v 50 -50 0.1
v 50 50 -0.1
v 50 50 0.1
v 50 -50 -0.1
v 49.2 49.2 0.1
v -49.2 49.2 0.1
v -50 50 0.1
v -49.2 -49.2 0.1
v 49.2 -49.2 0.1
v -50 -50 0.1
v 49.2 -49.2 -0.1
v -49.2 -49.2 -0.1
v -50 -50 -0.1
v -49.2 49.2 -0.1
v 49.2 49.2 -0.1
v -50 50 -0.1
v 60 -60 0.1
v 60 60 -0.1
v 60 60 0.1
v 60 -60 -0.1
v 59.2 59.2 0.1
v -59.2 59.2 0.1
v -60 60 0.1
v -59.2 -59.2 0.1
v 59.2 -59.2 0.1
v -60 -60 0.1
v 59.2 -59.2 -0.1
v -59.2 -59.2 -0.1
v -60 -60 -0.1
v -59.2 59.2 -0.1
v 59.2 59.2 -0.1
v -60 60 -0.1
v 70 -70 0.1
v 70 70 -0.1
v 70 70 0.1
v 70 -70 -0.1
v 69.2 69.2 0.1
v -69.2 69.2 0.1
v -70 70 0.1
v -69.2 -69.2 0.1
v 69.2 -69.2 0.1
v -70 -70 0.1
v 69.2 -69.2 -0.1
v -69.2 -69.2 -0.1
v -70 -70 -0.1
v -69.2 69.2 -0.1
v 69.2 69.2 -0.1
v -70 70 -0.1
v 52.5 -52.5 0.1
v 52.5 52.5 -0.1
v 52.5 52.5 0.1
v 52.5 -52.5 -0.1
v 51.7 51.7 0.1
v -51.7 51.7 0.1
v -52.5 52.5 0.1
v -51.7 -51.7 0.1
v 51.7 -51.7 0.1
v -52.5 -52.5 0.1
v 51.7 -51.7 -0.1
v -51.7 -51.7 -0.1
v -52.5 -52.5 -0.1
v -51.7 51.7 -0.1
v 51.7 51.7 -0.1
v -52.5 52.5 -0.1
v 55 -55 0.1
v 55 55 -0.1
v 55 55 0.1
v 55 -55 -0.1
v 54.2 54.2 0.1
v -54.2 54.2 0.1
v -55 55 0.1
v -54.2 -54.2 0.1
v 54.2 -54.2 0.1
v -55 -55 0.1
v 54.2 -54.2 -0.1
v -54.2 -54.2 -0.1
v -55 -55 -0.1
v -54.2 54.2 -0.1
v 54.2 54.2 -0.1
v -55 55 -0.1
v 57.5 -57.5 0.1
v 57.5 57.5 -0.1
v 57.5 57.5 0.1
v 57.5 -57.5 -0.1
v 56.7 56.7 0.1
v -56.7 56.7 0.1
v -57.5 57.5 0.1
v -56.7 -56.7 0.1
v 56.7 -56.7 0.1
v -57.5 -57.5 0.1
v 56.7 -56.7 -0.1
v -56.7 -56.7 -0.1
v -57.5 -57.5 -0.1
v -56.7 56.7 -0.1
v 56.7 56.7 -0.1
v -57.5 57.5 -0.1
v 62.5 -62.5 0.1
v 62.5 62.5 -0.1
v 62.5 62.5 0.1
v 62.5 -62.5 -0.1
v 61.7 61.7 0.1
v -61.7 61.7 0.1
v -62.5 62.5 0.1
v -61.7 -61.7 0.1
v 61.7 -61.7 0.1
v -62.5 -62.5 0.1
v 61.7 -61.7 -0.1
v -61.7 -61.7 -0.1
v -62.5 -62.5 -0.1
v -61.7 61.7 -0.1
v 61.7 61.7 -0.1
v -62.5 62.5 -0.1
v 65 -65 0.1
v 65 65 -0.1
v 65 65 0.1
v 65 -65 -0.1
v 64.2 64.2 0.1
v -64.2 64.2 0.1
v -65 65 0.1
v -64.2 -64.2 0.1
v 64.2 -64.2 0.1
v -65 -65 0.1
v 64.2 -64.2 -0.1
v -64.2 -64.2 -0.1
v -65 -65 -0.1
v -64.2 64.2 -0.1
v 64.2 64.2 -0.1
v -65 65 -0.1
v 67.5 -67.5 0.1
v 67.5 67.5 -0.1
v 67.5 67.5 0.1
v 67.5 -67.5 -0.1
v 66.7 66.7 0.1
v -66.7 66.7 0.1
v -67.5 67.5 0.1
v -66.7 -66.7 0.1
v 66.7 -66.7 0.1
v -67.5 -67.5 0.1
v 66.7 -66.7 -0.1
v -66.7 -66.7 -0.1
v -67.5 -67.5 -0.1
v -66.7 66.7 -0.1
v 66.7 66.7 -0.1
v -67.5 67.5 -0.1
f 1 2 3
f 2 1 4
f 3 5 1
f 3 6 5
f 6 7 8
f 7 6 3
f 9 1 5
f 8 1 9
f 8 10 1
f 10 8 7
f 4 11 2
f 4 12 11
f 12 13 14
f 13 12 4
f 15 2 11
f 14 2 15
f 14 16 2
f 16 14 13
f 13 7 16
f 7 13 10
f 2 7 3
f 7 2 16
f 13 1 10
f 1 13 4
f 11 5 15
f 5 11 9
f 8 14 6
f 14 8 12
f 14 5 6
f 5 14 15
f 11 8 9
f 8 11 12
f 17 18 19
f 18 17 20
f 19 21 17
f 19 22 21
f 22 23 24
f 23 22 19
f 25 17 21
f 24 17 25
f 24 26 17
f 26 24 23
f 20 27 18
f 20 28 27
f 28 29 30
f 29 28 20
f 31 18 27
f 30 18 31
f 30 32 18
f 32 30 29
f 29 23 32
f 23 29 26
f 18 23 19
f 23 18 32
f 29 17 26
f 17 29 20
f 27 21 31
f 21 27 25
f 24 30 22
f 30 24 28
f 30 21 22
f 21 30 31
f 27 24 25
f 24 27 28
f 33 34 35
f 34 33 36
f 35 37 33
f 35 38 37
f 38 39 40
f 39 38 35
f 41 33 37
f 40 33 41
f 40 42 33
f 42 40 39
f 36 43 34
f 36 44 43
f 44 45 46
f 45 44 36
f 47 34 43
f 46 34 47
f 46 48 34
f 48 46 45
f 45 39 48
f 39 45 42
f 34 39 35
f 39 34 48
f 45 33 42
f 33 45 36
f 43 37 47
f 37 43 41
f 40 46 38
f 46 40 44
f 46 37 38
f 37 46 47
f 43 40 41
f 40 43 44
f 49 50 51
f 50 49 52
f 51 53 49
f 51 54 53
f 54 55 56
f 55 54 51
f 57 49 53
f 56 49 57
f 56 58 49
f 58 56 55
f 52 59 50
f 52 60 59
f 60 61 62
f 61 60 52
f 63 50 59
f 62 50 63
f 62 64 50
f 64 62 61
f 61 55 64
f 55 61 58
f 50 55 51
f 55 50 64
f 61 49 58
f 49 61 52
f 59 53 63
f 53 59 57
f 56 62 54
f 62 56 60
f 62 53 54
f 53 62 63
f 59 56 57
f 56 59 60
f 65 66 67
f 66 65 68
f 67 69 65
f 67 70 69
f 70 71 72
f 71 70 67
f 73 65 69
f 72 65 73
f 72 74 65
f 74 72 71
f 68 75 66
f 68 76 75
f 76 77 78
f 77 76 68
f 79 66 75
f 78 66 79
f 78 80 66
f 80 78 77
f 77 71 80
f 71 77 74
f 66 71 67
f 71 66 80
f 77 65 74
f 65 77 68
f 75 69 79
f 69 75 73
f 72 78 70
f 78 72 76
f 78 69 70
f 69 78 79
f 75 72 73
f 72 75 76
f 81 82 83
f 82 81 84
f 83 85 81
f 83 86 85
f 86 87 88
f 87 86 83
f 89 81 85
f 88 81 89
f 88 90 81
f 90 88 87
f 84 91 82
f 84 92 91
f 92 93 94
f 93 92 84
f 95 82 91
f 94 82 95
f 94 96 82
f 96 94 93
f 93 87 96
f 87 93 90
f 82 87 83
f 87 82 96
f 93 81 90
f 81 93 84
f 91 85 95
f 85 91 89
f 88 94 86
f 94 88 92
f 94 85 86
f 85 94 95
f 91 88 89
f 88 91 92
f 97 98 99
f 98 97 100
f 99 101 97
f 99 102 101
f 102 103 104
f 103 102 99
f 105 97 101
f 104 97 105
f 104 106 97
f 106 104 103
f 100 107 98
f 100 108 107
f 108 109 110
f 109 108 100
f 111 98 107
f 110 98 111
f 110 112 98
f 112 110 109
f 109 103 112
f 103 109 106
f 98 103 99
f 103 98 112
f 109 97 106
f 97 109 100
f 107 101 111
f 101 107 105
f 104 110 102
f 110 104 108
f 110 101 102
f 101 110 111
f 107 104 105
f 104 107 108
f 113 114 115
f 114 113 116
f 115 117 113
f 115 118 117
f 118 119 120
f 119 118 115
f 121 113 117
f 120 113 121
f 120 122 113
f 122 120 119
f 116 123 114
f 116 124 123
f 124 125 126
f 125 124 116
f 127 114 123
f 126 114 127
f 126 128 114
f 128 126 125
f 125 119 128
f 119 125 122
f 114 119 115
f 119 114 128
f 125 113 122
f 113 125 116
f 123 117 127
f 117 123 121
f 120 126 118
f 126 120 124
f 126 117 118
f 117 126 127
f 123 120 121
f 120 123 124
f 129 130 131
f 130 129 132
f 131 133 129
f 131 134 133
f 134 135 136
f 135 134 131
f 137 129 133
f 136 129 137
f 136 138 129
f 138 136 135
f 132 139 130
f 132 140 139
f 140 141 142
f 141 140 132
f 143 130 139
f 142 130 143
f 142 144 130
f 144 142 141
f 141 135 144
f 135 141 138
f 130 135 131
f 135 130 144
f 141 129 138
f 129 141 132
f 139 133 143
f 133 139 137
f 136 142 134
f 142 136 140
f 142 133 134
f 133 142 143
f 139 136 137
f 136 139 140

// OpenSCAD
$wall_width=0.8;
$height=0.2;


for (x=[100 : 5 : 140]) {
    thinSquare(x);
}

module thinSquare(x=200) {
    difference() {
        cube([x, x, $height], center=true);
        cube([x-2*$wall_width, x-2*$wall_width, 3*$height], center=true);
    }
}
